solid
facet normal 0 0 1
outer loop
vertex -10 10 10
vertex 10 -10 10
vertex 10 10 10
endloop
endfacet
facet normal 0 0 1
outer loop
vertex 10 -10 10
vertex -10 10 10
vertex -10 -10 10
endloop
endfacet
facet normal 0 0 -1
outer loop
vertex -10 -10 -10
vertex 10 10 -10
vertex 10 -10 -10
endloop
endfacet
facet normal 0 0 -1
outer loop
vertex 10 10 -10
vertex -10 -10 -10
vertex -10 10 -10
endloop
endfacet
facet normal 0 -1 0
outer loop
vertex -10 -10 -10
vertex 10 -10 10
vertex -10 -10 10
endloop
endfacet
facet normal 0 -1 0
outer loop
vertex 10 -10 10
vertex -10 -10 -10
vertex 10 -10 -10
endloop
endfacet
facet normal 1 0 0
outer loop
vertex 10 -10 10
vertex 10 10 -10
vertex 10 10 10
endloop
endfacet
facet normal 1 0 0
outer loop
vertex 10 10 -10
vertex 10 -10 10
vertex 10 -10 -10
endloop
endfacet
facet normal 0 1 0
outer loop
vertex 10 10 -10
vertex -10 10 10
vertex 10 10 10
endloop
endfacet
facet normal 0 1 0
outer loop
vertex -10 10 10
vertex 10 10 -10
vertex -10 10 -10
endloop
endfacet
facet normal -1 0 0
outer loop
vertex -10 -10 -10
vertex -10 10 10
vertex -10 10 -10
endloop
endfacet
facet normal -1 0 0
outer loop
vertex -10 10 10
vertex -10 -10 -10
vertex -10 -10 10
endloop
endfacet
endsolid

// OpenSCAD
// cube.scad
cube_size = 20;   // change this → automatic rebuild

cube([cube_size, cube_size, cube_size], center = true);
